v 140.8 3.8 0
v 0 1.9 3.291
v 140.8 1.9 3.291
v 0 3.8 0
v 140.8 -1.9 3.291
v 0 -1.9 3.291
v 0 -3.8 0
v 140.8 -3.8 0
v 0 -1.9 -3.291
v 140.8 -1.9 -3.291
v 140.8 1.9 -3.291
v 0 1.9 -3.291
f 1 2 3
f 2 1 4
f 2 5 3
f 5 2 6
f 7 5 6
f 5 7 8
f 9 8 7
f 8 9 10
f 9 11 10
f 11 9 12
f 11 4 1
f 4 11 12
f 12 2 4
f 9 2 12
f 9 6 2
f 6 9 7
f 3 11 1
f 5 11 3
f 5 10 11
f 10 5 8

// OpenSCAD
// file: const.scad
tolerance = .2;
shift = 1;

tile_width = 14.2;
tile_height = 45;
tile_depth = 2.2;
tile_radius = 2;
tile_count = 7;

holder_edge = 2;
holder_width = tile_width + 2 * holder_edge + 5 * tolerance;
holder_height = tile_height + 2 * holder_edge + 5 * tolerance;
holder_depth = tile_depth + 2 * holder_edge + 5 * tolerance;
holder_connectorradius = 8;
holder_radius = 1;

rod_radius = 4;

link_indent = 1.4;
link_innerradius = 4;
link_outerradius = 6;

base_edge = 4;
base_width = tile_count * (holder_width + 2 * tolerance) + 2 * base_edge;
base_holderanglemin = 10;
base_holderanglemax = 100;
base_rodoffset = 10;
base_rodspacing = 2;
base_height = 4;
base_depth = 28;
base_indent = 2;
base_radius = 1;

foot_height = 1;
foot_radius = 2;
// main file
include <const.scad>

rod();

module rod() {
  rotate([90, 0, 90]) cylinder(r=rod_radius - tolerance, h=tile_count * (holder_width + 2 * tolerance) + base_edge - 2 * tolerance, $fn=6);
}
